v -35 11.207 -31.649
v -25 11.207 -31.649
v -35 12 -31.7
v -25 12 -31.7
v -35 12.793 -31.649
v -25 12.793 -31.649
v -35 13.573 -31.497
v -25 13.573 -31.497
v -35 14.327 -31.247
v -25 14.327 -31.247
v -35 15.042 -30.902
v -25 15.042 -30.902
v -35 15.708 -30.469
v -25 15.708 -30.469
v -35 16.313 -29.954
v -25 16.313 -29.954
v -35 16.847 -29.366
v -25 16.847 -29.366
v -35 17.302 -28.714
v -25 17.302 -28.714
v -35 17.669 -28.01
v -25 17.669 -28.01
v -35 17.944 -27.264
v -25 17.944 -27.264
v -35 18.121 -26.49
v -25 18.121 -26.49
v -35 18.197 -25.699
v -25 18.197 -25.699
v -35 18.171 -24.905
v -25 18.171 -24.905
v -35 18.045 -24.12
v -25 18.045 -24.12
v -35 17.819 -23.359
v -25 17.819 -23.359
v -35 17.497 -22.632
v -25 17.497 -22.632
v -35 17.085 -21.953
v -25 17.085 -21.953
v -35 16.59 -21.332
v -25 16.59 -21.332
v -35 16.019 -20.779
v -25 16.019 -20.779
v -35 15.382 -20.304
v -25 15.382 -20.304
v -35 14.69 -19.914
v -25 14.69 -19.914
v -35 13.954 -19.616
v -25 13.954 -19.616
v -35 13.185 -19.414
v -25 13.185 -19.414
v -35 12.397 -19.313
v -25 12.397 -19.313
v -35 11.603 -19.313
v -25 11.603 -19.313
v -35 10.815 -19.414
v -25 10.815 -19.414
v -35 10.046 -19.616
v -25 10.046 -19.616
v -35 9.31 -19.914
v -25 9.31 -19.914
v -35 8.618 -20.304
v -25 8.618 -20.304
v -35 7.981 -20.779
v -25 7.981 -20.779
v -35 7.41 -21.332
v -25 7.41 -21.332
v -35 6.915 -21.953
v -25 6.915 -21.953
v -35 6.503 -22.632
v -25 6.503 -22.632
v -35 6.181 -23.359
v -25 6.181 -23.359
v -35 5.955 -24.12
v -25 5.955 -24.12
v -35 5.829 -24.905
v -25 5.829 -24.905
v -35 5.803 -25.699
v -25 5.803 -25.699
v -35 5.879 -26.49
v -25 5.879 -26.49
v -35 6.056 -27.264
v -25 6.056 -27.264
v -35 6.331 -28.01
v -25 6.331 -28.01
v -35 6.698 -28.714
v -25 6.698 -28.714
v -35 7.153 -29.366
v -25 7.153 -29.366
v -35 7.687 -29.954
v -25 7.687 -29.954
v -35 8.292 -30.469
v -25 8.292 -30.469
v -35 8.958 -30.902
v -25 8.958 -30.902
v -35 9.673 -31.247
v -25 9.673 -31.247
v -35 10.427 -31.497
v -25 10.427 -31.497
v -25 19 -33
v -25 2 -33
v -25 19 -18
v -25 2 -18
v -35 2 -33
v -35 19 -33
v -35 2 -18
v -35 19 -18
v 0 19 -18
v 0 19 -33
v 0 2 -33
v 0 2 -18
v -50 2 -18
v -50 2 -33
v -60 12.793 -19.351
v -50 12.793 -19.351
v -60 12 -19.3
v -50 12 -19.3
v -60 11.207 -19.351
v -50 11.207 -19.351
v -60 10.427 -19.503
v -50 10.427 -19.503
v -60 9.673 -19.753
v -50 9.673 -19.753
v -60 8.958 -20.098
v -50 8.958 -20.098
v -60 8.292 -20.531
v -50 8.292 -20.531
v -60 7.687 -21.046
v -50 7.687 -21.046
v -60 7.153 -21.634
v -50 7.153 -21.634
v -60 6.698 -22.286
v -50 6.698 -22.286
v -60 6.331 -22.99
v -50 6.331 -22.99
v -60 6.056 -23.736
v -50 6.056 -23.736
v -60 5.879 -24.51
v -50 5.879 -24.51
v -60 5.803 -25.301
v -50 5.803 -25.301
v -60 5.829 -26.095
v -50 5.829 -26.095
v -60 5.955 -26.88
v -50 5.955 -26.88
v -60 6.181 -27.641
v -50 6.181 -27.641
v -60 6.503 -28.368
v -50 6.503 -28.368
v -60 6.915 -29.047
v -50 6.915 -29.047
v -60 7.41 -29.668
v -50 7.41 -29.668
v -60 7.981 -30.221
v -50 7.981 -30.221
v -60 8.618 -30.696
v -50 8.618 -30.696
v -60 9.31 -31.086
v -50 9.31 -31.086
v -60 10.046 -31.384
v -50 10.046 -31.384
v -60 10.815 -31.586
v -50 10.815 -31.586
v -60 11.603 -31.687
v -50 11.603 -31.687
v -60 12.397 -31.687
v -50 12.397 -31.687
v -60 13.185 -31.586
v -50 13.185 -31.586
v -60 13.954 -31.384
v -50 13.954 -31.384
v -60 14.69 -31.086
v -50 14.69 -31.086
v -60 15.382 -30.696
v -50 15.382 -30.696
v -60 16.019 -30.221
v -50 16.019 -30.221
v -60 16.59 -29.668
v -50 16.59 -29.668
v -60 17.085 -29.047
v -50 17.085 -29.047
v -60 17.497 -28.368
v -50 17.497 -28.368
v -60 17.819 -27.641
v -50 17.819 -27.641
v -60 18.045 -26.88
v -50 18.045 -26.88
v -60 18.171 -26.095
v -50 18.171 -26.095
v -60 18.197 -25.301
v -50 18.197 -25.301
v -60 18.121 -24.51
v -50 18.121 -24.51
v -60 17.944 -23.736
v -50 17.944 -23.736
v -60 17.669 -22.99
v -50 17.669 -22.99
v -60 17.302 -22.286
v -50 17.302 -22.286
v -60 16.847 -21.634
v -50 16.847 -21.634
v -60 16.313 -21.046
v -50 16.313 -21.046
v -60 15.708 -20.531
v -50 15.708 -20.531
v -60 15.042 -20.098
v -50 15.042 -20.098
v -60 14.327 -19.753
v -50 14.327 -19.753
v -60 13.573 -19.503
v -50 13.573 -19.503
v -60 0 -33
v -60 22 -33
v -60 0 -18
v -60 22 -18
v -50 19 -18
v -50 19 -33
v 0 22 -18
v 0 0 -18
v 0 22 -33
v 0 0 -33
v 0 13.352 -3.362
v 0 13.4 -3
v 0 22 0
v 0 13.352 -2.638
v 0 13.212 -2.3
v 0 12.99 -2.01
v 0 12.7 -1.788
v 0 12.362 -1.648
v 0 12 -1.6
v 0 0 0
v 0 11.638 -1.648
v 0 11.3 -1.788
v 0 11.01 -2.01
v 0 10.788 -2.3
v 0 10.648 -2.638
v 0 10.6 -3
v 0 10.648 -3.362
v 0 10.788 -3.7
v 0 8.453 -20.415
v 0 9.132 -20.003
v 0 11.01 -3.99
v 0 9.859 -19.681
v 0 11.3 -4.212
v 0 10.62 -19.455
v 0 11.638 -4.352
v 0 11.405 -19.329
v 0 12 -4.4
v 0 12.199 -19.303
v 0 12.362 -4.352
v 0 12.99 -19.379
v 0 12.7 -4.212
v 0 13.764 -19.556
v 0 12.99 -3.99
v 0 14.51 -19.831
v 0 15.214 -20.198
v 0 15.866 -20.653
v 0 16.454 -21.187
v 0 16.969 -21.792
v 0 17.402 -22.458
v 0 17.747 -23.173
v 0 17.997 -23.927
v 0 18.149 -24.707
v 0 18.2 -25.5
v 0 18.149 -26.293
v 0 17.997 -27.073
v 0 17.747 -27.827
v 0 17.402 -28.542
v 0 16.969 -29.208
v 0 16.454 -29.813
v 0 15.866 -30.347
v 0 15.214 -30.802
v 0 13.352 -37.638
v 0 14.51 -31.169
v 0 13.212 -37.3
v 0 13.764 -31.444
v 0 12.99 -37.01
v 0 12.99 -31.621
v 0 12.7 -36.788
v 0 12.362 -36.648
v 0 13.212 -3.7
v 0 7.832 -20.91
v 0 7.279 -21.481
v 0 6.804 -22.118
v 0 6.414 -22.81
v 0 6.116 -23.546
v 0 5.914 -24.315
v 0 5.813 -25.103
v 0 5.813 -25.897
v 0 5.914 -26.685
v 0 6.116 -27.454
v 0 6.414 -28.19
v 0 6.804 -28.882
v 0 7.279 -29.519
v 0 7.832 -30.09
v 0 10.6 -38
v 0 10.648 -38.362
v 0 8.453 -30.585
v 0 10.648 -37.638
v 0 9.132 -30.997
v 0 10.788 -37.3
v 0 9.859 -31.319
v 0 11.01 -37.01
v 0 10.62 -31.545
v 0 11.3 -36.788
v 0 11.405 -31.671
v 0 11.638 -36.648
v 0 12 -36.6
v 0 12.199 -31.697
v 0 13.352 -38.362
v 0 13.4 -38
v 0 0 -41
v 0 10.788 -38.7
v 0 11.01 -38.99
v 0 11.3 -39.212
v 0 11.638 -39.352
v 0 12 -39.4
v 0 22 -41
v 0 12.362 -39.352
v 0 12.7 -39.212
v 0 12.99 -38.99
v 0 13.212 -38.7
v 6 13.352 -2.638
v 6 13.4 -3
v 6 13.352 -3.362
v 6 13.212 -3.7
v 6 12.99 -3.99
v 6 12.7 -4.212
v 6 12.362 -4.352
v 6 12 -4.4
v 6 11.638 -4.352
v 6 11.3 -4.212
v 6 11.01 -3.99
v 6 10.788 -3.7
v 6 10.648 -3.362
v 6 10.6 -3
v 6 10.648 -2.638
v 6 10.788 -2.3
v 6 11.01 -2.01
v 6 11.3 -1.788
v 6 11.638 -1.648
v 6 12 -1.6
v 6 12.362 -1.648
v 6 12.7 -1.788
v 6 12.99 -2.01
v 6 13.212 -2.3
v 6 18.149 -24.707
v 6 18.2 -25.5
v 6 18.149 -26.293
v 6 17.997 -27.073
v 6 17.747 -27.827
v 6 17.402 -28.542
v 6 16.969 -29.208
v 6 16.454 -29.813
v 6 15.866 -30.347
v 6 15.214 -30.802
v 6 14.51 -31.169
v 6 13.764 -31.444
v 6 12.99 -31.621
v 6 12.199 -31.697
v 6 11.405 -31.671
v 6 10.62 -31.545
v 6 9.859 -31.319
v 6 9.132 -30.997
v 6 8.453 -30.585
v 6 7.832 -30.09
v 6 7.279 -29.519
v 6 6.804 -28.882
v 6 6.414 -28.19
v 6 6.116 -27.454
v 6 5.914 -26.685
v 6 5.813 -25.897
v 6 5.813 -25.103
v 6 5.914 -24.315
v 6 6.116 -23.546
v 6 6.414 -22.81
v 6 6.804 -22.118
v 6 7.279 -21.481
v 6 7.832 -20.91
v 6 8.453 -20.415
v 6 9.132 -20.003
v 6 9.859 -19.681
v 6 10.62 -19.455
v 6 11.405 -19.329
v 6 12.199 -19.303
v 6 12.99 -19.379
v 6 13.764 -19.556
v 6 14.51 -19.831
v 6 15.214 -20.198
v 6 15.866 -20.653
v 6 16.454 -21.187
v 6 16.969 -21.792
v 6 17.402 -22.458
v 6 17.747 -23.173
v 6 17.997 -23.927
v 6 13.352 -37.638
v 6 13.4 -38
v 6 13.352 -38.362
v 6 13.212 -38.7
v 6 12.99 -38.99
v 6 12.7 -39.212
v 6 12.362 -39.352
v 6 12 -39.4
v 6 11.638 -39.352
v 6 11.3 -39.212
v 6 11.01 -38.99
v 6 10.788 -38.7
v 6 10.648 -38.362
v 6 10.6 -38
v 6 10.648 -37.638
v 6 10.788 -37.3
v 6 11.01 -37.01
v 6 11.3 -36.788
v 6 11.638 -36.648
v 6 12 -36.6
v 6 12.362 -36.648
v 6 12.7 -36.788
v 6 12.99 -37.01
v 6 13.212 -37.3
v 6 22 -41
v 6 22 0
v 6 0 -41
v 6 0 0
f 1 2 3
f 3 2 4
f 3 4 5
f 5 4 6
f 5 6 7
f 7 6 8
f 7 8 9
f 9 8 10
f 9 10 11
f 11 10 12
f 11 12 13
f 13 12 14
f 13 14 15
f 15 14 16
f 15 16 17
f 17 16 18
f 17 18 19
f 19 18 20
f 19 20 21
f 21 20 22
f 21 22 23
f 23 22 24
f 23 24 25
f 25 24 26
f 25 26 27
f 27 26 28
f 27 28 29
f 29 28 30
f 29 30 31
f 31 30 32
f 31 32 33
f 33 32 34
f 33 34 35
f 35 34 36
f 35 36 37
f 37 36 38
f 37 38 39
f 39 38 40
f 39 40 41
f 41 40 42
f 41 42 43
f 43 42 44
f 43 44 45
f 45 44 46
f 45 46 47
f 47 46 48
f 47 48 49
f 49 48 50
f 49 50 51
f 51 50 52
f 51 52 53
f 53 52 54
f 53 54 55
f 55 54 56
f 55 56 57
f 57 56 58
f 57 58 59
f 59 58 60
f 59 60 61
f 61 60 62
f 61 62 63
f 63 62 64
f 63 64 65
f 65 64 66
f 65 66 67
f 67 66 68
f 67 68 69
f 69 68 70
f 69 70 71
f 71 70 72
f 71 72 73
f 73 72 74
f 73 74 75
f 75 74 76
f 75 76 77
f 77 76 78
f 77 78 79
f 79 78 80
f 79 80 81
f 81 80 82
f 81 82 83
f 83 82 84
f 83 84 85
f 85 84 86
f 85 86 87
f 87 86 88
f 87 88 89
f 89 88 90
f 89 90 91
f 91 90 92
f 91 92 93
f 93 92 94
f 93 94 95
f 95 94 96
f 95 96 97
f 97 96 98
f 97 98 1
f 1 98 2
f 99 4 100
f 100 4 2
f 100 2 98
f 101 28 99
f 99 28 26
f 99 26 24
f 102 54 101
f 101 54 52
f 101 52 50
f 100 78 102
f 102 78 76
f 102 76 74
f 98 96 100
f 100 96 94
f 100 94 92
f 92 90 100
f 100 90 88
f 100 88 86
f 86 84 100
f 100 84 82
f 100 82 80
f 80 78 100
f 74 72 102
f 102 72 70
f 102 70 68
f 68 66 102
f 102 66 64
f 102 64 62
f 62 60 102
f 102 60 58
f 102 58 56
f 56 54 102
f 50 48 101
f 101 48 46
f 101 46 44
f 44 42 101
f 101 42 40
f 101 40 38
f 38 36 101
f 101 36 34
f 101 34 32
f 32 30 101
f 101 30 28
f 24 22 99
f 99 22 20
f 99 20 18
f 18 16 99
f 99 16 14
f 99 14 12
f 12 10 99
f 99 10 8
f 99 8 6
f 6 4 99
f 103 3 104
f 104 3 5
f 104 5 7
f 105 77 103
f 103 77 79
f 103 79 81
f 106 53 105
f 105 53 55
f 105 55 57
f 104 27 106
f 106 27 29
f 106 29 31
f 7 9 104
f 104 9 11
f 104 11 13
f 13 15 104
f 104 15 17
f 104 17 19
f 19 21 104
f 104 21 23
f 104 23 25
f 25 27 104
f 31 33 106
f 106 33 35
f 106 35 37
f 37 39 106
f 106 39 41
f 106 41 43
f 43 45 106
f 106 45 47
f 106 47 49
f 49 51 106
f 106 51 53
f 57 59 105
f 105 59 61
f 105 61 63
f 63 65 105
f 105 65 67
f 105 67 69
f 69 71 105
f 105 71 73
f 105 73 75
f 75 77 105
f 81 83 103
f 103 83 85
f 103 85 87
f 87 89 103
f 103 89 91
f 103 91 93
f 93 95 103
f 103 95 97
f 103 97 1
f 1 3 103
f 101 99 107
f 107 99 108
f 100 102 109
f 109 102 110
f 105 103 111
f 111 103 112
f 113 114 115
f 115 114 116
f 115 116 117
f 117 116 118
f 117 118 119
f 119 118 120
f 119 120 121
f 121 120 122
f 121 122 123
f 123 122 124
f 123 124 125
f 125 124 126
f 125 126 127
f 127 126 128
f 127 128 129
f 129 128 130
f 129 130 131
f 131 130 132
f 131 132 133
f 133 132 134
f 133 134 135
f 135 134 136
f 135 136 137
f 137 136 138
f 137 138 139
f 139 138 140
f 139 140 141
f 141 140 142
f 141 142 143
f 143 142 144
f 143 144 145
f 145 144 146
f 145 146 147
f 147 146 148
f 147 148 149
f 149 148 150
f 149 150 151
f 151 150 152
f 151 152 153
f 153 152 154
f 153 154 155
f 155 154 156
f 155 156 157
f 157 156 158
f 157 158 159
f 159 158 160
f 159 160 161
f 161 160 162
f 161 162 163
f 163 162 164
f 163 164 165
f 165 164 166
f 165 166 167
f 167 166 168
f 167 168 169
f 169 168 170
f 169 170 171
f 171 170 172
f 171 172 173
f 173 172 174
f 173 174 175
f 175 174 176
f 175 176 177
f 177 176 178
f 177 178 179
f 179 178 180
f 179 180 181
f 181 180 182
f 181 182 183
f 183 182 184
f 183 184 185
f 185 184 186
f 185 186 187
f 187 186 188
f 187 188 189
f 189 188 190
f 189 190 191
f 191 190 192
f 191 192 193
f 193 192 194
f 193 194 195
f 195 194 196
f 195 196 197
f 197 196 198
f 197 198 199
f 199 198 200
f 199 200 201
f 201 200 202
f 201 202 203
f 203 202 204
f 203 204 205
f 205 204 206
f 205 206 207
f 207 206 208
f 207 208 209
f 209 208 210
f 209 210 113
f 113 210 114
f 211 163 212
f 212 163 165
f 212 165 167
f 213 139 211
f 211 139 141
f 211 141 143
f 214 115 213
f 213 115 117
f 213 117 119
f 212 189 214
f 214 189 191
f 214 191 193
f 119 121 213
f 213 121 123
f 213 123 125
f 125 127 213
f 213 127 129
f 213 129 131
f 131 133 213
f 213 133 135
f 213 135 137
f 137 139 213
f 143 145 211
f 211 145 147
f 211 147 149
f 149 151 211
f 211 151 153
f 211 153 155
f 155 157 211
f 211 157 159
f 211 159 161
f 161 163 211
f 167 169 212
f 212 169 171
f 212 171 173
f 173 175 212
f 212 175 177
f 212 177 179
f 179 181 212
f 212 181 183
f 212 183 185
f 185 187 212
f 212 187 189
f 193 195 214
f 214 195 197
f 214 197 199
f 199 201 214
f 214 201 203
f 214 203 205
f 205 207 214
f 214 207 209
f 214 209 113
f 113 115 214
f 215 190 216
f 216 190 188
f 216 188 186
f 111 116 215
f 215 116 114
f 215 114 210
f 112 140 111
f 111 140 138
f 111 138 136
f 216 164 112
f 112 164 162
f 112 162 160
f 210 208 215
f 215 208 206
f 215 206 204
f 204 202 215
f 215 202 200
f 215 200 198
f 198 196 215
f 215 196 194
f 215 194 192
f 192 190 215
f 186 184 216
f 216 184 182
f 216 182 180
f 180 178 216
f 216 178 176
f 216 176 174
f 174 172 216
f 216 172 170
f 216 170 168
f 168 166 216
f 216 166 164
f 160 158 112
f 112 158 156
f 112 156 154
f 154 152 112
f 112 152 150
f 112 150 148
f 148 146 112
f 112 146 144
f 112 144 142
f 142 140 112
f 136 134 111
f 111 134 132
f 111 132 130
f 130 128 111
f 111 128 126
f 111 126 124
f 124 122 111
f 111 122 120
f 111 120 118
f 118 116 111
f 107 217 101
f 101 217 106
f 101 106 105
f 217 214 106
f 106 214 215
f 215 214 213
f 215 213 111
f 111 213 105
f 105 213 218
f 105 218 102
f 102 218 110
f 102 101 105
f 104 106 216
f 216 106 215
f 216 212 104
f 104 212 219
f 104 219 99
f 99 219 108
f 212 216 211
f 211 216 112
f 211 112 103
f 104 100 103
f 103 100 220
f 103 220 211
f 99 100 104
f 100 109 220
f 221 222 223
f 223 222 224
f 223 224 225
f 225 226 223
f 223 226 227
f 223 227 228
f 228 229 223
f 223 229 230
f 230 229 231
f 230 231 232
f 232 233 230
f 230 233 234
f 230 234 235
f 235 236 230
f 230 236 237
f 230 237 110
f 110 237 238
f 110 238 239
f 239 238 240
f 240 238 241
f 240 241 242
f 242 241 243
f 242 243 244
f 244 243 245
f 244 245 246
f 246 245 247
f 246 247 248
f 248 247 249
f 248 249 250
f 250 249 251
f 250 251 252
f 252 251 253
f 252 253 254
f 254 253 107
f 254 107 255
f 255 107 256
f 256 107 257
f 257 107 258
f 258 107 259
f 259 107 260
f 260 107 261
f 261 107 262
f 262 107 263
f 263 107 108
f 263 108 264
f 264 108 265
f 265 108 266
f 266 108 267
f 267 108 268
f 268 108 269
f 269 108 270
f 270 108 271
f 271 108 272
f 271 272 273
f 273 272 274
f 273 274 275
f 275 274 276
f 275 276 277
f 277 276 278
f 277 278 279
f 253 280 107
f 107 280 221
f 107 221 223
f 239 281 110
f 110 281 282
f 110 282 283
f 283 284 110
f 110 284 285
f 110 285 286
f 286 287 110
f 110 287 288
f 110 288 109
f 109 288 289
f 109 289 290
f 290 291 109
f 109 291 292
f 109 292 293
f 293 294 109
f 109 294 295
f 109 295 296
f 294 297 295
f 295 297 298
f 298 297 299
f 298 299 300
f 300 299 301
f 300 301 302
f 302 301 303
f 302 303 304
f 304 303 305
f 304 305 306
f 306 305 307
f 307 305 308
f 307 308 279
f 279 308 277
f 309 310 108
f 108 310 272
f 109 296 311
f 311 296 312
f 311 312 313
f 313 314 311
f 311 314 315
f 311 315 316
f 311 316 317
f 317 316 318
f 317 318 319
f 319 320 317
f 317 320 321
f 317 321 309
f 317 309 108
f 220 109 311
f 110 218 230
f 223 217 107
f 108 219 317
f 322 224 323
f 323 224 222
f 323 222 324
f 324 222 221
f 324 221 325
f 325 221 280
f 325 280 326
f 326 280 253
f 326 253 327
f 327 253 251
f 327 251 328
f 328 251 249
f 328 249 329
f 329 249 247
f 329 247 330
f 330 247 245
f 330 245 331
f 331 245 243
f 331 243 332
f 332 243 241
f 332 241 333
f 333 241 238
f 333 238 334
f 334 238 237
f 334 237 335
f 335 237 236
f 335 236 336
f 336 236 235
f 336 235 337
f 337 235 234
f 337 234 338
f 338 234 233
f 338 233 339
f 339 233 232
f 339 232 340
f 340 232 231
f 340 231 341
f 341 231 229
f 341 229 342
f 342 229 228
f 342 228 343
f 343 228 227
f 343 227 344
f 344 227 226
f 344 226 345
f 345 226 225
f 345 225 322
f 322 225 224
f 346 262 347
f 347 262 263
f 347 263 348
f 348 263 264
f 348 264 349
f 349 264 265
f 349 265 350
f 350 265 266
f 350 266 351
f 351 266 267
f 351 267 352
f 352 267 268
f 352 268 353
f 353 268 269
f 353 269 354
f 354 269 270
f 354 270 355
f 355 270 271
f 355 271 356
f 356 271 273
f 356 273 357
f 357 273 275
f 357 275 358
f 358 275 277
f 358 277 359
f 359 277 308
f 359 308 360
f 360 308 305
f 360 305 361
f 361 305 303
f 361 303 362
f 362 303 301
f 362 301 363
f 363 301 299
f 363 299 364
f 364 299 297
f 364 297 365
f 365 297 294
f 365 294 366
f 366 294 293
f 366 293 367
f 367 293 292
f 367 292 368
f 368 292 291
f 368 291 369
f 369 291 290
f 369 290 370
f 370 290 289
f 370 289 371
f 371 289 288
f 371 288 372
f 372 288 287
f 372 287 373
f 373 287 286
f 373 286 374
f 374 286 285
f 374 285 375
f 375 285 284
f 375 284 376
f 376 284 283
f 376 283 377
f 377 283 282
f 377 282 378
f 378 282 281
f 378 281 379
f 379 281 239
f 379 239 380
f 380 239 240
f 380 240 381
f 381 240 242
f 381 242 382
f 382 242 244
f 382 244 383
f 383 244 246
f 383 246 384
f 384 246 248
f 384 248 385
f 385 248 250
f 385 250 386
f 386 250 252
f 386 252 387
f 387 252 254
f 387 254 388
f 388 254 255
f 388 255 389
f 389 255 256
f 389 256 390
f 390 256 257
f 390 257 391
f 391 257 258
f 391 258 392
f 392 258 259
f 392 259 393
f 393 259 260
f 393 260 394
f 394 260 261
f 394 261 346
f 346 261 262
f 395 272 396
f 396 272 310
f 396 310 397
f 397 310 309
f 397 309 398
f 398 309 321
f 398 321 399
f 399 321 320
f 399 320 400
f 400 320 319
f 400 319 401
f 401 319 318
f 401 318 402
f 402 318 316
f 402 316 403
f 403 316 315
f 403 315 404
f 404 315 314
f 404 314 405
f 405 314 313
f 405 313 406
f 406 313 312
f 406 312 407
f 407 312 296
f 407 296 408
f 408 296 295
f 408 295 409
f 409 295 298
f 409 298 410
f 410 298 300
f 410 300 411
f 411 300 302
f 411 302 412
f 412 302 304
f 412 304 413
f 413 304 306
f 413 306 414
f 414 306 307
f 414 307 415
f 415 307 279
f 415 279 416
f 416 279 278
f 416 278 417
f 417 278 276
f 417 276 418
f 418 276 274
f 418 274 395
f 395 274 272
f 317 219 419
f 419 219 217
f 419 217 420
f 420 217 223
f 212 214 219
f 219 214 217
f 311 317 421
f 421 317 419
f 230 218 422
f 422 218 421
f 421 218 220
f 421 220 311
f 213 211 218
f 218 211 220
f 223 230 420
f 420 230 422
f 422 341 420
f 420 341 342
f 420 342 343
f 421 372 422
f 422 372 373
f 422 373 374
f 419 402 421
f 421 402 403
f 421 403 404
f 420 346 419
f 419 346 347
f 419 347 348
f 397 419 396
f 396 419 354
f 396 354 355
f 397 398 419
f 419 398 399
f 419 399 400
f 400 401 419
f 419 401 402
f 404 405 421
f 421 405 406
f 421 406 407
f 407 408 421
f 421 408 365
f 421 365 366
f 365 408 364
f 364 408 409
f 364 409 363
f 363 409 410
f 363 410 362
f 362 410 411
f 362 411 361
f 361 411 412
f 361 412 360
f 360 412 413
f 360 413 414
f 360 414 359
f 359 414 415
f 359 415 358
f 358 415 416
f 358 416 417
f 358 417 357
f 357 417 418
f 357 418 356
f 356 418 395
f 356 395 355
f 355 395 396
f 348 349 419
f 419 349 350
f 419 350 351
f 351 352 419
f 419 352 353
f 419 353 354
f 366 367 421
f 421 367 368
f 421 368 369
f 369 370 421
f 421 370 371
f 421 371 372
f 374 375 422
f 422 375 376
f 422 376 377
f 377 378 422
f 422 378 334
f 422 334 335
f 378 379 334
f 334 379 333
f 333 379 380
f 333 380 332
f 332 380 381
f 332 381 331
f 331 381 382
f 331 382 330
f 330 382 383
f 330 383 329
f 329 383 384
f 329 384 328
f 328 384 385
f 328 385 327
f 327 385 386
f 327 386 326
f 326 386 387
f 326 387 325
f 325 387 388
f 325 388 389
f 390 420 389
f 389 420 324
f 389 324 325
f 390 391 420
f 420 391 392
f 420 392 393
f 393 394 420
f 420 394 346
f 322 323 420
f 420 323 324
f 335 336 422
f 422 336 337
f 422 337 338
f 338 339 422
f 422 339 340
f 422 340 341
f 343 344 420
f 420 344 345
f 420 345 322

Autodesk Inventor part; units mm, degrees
ref_plane "YZ Plane" through (0, 0, 0) normal (1, 0, 0) x (0, 1, 0)
ref_plane "XZ Plane" through (0, 0, 0) normal (0, 1, 0) x (-1, 0, 0)
ref_plane "XY Plane" through (0, 0, 0) normal (0, 0, 1) x (1, 0, 0)
sketch "Sketch1" plane through (0, 0, 0) normal (1, 0, 0) x (0, 1, 0)
  line L0 (0, 0) -> (22, 0)
  line L1 (22, 0) -> (22, -41)
  line L2 (22, -41) -> (0, -41)
  line L3 (0, -41) -> (0, 0)
  line L4 (0, -22) -> (0, -32)
  line L5 (22, -33) -> (22, -23)
  circle A0 centre (12, -25.5) radius 6.2
  line L6 (22, -18) -> (0, -18)
  line L7 (0, -18) -> (0, -33)
  line L8 (0, -33) -> (22, -33)
  line L9 (22, -33) -> (22, -18)
  circle A1 centre (12, -3) radius 1.4
  circle A2 centre (12, -38) radius 1.4
  line L10 (19, -18) -> (2, -18)
  line L11 (2, -18) -> (2, -33)
  line L12 (2, -33) -> (19, -33)
  line L13 (19, -33) -> (19, -18)
  point P0 (0, -18)
  dimension "d10" = 41
  dimension "d11" = 22
  dimension "d12" = 15
  dimension "d15" = 10
  dimension "d17" = 8
  dimension "d18" = 2.8
  dimension "d19" = 2.8
  dimension "d20" = 12.4
  dimension "d22" = 10
  dimension "d23" = 10
  dimension "d24" = 35
  dimension "d25" = 3
  dimension "d26" = 7.5
  dimension "d27" = 17
  dimension "d28" = 3
extrude "Extrusion5" add sketch "Sketch1" along normal blind 6
extrude "Extrusion6" add sketch "Sketch1" against normal blind 50 contours L6 L11 L8 L3 | L1 L8 L13 L6
sketch "Sketch4" plane through (-50, 0, 0) normal (-1, 0, 0) x (0, 0, 1)
  line L0 (-41, 22) -> (-33, 22) projected
  line L1 (-33, 22) -> (-18, 22)
  line L2 (-18, 22) -> (-18, 0)
  line L3 (-18, 0) -> (-33, 0)
  line L4 (-33, 0) -> (-33, 22)
  circle A0 centre (-25.5, 12) radius 6.2 projected
  circle A1 centre (-25.5, 12) radius 6.2
  point P0 (0, 0)
  dimension "d38" = 12.4
extrude "Extrusion7" add sketch "Sketch4" along normal blind 10
ref_plane "Work Plane1" through (-25, 0, 0) normal (1, 0, 0) x (0, 0, -1)
sketch "Sketch5" plane through (-25, 0, 0) normal (1, 0, 0) x (0, 0, -1)
  point P0 (0, 0)
sketch "Sketch6" plane through (-25, 0, 0) normal (1, 0, 0) x (0, 0, -1)
  circle A0 centre (25.5, 12) radius 6.2 projected
  circle A1 centre (25.5, 12) radius 6.2
  line L0 (18, 2) -> (18, 19) projected
  line L1 (33, 0) -> (33, 2) projected
  line L2 (18, 19) -> (33, 19)
  line L3 (33, 19) -> (33, 2)
  line L4 (33, 2) -> (18, 2)
  line L5 (18, 2) -> (18, 19)
  point P0 (0, 0)
  point P1 (18, 2)
  dimension "d39" = 12.4
extrude "Extrusion8" add sketch "Sketch6" against normal blind 10
equation "\"d26\" = 0.5 * d12"
properties part number "_3DPrint"
